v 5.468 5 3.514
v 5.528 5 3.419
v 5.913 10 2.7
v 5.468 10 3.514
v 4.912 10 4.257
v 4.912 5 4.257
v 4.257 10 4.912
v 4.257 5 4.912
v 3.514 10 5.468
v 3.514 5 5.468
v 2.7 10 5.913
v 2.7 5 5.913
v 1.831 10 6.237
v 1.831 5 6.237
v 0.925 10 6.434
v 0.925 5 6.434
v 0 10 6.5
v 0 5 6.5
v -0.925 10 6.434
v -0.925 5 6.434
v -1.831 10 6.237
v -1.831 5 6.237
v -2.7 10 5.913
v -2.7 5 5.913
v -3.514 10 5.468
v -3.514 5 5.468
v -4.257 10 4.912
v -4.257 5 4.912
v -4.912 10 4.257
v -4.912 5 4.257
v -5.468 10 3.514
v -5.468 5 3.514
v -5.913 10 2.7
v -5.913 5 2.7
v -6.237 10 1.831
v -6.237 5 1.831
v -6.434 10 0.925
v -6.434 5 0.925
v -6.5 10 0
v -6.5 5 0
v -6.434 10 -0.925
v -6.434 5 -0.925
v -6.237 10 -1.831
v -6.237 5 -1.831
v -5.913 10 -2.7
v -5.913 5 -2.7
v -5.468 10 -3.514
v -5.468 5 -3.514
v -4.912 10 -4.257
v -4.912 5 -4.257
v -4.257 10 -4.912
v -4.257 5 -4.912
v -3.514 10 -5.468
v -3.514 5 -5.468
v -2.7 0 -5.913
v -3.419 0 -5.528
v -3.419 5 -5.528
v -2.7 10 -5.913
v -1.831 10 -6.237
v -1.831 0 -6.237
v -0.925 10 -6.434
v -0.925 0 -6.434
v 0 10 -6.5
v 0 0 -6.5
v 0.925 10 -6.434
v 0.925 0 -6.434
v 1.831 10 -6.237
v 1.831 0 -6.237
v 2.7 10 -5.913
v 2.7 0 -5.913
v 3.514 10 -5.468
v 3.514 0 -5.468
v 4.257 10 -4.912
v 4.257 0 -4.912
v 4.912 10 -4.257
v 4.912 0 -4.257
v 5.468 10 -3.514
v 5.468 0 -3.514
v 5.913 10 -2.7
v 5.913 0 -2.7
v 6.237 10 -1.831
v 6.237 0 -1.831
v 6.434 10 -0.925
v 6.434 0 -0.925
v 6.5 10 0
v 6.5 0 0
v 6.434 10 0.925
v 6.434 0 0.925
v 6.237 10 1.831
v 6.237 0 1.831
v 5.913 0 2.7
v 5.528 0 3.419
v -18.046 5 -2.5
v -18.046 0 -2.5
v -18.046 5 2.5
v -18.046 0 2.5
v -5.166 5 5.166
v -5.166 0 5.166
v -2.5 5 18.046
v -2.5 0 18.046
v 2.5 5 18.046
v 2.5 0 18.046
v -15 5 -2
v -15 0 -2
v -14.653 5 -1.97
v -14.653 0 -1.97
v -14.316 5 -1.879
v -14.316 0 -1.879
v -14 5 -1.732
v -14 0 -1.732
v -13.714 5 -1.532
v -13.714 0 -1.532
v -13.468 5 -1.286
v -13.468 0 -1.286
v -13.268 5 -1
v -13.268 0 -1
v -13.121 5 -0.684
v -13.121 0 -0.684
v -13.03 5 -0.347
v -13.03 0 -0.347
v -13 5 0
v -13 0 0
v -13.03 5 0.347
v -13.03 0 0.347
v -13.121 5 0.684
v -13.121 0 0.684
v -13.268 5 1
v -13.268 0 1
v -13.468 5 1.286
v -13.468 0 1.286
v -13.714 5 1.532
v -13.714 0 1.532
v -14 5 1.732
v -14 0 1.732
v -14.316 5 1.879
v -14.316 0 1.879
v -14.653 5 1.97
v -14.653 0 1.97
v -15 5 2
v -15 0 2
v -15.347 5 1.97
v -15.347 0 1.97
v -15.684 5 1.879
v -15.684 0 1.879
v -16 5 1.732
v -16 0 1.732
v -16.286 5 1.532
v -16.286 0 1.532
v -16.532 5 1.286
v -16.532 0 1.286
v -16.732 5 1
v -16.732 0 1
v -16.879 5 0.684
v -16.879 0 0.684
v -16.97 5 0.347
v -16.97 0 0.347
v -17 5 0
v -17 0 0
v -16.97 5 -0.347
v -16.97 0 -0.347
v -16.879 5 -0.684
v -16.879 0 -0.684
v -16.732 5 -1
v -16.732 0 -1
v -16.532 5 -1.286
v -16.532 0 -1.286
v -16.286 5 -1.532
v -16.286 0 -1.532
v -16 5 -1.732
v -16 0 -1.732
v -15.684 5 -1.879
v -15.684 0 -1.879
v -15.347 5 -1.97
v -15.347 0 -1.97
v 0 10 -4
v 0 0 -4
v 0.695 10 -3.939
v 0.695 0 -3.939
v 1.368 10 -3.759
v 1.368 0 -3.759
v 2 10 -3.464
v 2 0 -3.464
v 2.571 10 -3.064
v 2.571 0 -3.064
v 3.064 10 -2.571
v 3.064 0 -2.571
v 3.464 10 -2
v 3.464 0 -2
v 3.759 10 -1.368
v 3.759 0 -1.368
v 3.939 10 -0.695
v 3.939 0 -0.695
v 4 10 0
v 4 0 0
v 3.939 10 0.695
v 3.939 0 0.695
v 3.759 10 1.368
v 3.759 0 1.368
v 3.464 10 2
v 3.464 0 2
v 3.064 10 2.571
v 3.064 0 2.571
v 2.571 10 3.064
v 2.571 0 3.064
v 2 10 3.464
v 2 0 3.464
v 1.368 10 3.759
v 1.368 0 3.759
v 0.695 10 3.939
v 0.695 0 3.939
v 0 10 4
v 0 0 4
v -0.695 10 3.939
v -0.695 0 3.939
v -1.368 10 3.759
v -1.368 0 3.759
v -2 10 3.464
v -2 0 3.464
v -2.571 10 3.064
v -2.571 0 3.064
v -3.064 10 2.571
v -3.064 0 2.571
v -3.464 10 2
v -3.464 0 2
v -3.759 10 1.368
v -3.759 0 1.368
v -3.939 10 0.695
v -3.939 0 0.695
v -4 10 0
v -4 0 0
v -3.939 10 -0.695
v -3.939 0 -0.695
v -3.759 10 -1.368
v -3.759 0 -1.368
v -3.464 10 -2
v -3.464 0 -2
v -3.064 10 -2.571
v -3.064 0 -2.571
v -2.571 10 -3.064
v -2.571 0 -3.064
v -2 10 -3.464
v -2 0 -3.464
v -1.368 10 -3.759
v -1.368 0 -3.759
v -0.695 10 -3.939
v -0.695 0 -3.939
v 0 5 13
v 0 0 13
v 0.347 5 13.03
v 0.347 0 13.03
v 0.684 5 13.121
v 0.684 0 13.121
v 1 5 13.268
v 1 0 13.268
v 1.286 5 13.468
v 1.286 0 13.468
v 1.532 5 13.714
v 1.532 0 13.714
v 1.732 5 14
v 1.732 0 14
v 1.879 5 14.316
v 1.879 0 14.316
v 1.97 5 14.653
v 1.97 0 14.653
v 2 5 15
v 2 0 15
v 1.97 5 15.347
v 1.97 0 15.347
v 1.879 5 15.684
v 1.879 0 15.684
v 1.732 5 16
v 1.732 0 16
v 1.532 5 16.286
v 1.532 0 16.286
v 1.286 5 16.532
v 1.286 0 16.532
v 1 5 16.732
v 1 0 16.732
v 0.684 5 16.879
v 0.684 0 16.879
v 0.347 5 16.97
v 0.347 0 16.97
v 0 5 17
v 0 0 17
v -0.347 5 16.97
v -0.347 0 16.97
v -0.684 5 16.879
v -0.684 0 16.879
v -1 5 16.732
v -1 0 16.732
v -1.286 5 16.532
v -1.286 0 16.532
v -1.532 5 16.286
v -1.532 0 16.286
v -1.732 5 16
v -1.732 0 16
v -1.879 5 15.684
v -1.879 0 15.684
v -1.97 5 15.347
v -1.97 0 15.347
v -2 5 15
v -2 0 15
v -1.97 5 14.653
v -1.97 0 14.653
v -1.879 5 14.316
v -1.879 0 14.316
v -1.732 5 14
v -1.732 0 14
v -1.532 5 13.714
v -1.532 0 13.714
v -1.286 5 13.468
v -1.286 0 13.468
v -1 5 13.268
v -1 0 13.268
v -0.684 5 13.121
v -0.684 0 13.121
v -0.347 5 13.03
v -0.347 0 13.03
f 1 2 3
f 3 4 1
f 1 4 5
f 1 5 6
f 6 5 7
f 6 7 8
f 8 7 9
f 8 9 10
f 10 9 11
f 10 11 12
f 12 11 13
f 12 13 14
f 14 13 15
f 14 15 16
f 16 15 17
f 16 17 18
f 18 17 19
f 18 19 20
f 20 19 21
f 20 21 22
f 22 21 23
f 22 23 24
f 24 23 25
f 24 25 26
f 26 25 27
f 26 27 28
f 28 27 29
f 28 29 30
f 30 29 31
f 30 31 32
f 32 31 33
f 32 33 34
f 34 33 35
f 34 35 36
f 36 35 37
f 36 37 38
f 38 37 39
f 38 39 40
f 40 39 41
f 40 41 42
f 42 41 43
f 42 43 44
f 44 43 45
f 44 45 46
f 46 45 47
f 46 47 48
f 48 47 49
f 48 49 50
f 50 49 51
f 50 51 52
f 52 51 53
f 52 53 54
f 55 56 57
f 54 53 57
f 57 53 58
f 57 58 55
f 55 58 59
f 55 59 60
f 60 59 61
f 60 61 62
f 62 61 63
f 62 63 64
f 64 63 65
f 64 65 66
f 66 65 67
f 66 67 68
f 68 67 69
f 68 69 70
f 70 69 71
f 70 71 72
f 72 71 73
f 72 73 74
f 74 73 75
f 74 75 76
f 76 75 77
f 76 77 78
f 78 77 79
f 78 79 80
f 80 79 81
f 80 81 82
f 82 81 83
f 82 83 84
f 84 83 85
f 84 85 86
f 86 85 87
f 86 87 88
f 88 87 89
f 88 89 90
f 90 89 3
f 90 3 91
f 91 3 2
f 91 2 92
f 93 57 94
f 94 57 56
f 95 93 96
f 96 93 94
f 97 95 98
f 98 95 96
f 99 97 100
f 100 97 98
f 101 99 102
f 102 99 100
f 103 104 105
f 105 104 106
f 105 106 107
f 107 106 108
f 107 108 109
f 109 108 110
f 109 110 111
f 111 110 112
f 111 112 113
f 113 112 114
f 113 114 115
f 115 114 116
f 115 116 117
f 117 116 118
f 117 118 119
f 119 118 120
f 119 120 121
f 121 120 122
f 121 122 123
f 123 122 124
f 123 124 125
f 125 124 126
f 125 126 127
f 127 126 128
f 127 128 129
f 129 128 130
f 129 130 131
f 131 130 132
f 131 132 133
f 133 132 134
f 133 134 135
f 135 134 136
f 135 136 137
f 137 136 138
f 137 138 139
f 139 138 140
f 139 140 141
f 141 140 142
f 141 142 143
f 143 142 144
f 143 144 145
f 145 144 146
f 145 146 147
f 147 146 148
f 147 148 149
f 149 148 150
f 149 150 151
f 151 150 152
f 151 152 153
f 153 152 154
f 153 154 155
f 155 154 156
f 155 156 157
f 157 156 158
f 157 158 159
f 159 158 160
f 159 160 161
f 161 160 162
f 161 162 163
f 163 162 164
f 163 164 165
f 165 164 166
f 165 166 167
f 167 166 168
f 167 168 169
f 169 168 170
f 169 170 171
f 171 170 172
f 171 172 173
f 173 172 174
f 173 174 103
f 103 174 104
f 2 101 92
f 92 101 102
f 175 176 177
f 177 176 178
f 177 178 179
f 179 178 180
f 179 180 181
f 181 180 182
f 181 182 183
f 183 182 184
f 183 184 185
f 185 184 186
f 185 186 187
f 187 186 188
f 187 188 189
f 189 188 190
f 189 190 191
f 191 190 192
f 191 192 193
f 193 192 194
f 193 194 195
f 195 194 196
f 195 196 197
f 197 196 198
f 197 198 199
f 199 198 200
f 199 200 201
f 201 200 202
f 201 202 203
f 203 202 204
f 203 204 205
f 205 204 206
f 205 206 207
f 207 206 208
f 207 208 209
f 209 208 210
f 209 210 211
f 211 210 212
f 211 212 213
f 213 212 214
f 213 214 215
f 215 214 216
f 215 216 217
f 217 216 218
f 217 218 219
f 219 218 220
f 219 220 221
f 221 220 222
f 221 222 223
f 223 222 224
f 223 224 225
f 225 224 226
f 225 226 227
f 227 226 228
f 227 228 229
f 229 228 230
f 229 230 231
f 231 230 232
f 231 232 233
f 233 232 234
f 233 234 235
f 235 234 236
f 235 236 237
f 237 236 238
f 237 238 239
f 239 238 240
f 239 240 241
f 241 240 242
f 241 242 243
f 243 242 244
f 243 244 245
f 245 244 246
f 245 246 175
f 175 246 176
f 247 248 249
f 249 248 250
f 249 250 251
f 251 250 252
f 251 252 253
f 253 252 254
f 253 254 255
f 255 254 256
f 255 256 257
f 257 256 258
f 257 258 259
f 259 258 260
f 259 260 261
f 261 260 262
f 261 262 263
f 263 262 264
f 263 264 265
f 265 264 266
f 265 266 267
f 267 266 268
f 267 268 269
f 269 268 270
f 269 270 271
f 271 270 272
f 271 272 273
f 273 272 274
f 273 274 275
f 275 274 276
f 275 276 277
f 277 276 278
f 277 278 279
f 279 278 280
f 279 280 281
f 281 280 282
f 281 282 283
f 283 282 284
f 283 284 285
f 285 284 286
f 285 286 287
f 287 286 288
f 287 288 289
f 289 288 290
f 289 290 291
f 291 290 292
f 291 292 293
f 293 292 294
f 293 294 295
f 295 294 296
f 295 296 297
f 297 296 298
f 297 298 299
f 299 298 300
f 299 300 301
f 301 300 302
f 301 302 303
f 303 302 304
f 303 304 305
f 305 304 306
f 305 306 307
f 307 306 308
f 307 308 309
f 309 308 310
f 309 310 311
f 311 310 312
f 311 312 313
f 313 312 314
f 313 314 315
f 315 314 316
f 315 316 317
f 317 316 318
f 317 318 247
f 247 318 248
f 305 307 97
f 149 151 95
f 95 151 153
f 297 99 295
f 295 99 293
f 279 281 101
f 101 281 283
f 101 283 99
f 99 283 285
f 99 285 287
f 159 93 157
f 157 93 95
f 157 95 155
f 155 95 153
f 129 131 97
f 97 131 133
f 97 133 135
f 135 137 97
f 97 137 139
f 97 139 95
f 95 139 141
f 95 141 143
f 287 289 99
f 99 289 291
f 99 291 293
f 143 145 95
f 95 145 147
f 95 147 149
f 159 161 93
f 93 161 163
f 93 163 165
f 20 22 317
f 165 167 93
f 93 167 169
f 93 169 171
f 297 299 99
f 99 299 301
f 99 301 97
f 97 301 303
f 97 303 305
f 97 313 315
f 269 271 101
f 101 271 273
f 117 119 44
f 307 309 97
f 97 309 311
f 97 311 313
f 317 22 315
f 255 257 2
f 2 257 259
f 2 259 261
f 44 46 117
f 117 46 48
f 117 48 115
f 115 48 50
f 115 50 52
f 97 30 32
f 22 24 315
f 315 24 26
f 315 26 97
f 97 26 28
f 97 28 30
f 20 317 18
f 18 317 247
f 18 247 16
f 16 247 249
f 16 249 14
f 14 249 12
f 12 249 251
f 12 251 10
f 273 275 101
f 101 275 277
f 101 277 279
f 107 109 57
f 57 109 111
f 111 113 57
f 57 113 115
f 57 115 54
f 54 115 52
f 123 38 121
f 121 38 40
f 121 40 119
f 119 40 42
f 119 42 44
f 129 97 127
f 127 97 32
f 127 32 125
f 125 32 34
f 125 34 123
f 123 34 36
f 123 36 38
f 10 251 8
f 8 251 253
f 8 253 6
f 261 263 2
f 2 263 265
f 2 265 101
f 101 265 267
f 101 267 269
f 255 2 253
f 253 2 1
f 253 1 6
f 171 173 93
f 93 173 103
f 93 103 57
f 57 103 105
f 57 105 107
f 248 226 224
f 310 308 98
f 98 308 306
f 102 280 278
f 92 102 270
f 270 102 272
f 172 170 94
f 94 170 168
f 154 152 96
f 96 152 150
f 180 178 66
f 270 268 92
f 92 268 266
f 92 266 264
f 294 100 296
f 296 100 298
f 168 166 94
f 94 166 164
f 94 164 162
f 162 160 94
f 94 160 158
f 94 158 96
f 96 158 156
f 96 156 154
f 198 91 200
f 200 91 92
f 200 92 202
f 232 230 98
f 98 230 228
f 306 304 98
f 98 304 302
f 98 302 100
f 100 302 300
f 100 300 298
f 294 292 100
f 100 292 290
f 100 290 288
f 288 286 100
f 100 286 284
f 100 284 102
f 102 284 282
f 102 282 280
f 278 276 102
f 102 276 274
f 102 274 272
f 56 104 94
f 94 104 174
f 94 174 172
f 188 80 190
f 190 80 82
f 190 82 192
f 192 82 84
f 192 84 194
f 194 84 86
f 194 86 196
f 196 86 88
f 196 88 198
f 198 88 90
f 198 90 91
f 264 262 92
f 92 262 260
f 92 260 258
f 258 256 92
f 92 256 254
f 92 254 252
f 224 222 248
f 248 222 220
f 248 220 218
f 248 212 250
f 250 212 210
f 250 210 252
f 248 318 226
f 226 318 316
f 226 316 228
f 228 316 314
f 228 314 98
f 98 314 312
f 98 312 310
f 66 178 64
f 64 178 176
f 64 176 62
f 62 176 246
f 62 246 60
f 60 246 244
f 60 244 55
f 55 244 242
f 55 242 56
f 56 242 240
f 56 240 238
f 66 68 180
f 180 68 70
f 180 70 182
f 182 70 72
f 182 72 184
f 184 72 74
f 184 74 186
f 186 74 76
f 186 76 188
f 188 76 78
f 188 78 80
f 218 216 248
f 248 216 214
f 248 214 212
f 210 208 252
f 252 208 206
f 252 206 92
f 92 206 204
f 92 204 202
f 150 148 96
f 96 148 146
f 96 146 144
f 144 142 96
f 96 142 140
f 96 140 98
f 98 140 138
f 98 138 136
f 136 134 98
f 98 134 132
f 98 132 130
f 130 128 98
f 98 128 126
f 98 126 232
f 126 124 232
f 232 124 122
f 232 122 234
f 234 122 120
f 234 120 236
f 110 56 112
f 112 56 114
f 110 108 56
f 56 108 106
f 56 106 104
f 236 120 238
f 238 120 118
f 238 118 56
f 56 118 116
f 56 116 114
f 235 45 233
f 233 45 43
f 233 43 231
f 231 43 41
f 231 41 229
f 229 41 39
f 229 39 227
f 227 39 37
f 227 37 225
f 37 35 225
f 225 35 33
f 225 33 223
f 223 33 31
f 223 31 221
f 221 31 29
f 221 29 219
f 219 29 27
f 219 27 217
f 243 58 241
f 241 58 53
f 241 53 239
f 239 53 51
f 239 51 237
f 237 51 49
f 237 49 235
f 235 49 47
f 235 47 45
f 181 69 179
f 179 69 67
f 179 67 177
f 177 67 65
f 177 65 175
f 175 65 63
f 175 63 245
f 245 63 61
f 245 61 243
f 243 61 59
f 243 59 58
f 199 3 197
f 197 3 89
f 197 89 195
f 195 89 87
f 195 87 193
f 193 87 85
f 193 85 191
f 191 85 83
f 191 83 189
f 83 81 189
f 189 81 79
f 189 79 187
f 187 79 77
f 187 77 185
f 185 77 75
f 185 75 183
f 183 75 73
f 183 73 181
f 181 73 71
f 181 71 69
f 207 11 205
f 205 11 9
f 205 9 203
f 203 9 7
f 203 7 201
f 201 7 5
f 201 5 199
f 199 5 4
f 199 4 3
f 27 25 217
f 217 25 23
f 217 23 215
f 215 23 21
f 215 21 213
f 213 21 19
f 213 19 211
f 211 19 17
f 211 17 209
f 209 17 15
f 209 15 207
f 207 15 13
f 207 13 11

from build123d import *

# Parameters (mm, degrees)
SKETCH1_R           = 2
SKETCH1_R_2         = 4
BOSS_EXTRUDE1_DEPTH = 5
SKETCH1_3_R         = 6.5
SKETCH1_3_R_2       = 4
BOSS_EXTRUDE2_DEPTH = 10


with BuildPart() as part:
    # Sketch1 → Boss-Extrude1 (new body)
    with BuildSketch(Plane(origin=(0, 0, 0), x_dir=(1, 0, 0), z_dir=(0, 1, 0))):
        with BuildLine():
            Line((-3.418800465, 5.528273092), (-18.046143069, 2.5))
            Line((-18.046143069, 2.5), (-18.046143069, -2.5))
            Line((-18.046143069, -2.5), (-5.166458511, -5.166458511))
            Line((-5.166458511, -5.166458511), (-2.5, -18.046143069))
            Line((-2.5, -18.046143069), (2.5, -18.046143069))
            Line((2.5, -18.046143069), (5.528273092, -3.418800465))
            ThreePointArc((5.528273092, -3.418800465), (4.596194078, 4.596194078), (-3.418800465, 5.528273092))
        make_face()
        with Locations(Location((-15, 0, 0), (0, 0, 270))):
            Circle(SKETCH1_R, mode=Mode.SUBTRACT)
        with Locations(Location((0, 0, 0), (0, 0, 270))):
            Circle(SKETCH1_R_2, mode=Mode.SUBTRACT)
        with Locations(Location((0, -15, 0), (0, 0, 270))):
            Circle(SKETCH1_R, mode=Mode.SUBTRACT)
    extrude(amount=BOSS_EXTRUDE1_DEPTH)

    # Sketch1<3> → Boss-Extrude2 (add)
    with BuildSketch(Plane(origin=(0, 0, 0), x_dir=(1, 0, 0), z_dir=(0, 1, 0))):
        with Locations(Location((0, 0, 0), (0, 0, 121.733519153))):
            Circle(SKETCH1_3_R)
        with Locations(Location((0, 0, 0), (0, 0, 270))):
            Circle(SKETCH1_3_R_2, mode=Mode.SUBTRACT)
    extrude(amount=BOSS_EXTRUDE2_DEPTH)


solid = part.part
